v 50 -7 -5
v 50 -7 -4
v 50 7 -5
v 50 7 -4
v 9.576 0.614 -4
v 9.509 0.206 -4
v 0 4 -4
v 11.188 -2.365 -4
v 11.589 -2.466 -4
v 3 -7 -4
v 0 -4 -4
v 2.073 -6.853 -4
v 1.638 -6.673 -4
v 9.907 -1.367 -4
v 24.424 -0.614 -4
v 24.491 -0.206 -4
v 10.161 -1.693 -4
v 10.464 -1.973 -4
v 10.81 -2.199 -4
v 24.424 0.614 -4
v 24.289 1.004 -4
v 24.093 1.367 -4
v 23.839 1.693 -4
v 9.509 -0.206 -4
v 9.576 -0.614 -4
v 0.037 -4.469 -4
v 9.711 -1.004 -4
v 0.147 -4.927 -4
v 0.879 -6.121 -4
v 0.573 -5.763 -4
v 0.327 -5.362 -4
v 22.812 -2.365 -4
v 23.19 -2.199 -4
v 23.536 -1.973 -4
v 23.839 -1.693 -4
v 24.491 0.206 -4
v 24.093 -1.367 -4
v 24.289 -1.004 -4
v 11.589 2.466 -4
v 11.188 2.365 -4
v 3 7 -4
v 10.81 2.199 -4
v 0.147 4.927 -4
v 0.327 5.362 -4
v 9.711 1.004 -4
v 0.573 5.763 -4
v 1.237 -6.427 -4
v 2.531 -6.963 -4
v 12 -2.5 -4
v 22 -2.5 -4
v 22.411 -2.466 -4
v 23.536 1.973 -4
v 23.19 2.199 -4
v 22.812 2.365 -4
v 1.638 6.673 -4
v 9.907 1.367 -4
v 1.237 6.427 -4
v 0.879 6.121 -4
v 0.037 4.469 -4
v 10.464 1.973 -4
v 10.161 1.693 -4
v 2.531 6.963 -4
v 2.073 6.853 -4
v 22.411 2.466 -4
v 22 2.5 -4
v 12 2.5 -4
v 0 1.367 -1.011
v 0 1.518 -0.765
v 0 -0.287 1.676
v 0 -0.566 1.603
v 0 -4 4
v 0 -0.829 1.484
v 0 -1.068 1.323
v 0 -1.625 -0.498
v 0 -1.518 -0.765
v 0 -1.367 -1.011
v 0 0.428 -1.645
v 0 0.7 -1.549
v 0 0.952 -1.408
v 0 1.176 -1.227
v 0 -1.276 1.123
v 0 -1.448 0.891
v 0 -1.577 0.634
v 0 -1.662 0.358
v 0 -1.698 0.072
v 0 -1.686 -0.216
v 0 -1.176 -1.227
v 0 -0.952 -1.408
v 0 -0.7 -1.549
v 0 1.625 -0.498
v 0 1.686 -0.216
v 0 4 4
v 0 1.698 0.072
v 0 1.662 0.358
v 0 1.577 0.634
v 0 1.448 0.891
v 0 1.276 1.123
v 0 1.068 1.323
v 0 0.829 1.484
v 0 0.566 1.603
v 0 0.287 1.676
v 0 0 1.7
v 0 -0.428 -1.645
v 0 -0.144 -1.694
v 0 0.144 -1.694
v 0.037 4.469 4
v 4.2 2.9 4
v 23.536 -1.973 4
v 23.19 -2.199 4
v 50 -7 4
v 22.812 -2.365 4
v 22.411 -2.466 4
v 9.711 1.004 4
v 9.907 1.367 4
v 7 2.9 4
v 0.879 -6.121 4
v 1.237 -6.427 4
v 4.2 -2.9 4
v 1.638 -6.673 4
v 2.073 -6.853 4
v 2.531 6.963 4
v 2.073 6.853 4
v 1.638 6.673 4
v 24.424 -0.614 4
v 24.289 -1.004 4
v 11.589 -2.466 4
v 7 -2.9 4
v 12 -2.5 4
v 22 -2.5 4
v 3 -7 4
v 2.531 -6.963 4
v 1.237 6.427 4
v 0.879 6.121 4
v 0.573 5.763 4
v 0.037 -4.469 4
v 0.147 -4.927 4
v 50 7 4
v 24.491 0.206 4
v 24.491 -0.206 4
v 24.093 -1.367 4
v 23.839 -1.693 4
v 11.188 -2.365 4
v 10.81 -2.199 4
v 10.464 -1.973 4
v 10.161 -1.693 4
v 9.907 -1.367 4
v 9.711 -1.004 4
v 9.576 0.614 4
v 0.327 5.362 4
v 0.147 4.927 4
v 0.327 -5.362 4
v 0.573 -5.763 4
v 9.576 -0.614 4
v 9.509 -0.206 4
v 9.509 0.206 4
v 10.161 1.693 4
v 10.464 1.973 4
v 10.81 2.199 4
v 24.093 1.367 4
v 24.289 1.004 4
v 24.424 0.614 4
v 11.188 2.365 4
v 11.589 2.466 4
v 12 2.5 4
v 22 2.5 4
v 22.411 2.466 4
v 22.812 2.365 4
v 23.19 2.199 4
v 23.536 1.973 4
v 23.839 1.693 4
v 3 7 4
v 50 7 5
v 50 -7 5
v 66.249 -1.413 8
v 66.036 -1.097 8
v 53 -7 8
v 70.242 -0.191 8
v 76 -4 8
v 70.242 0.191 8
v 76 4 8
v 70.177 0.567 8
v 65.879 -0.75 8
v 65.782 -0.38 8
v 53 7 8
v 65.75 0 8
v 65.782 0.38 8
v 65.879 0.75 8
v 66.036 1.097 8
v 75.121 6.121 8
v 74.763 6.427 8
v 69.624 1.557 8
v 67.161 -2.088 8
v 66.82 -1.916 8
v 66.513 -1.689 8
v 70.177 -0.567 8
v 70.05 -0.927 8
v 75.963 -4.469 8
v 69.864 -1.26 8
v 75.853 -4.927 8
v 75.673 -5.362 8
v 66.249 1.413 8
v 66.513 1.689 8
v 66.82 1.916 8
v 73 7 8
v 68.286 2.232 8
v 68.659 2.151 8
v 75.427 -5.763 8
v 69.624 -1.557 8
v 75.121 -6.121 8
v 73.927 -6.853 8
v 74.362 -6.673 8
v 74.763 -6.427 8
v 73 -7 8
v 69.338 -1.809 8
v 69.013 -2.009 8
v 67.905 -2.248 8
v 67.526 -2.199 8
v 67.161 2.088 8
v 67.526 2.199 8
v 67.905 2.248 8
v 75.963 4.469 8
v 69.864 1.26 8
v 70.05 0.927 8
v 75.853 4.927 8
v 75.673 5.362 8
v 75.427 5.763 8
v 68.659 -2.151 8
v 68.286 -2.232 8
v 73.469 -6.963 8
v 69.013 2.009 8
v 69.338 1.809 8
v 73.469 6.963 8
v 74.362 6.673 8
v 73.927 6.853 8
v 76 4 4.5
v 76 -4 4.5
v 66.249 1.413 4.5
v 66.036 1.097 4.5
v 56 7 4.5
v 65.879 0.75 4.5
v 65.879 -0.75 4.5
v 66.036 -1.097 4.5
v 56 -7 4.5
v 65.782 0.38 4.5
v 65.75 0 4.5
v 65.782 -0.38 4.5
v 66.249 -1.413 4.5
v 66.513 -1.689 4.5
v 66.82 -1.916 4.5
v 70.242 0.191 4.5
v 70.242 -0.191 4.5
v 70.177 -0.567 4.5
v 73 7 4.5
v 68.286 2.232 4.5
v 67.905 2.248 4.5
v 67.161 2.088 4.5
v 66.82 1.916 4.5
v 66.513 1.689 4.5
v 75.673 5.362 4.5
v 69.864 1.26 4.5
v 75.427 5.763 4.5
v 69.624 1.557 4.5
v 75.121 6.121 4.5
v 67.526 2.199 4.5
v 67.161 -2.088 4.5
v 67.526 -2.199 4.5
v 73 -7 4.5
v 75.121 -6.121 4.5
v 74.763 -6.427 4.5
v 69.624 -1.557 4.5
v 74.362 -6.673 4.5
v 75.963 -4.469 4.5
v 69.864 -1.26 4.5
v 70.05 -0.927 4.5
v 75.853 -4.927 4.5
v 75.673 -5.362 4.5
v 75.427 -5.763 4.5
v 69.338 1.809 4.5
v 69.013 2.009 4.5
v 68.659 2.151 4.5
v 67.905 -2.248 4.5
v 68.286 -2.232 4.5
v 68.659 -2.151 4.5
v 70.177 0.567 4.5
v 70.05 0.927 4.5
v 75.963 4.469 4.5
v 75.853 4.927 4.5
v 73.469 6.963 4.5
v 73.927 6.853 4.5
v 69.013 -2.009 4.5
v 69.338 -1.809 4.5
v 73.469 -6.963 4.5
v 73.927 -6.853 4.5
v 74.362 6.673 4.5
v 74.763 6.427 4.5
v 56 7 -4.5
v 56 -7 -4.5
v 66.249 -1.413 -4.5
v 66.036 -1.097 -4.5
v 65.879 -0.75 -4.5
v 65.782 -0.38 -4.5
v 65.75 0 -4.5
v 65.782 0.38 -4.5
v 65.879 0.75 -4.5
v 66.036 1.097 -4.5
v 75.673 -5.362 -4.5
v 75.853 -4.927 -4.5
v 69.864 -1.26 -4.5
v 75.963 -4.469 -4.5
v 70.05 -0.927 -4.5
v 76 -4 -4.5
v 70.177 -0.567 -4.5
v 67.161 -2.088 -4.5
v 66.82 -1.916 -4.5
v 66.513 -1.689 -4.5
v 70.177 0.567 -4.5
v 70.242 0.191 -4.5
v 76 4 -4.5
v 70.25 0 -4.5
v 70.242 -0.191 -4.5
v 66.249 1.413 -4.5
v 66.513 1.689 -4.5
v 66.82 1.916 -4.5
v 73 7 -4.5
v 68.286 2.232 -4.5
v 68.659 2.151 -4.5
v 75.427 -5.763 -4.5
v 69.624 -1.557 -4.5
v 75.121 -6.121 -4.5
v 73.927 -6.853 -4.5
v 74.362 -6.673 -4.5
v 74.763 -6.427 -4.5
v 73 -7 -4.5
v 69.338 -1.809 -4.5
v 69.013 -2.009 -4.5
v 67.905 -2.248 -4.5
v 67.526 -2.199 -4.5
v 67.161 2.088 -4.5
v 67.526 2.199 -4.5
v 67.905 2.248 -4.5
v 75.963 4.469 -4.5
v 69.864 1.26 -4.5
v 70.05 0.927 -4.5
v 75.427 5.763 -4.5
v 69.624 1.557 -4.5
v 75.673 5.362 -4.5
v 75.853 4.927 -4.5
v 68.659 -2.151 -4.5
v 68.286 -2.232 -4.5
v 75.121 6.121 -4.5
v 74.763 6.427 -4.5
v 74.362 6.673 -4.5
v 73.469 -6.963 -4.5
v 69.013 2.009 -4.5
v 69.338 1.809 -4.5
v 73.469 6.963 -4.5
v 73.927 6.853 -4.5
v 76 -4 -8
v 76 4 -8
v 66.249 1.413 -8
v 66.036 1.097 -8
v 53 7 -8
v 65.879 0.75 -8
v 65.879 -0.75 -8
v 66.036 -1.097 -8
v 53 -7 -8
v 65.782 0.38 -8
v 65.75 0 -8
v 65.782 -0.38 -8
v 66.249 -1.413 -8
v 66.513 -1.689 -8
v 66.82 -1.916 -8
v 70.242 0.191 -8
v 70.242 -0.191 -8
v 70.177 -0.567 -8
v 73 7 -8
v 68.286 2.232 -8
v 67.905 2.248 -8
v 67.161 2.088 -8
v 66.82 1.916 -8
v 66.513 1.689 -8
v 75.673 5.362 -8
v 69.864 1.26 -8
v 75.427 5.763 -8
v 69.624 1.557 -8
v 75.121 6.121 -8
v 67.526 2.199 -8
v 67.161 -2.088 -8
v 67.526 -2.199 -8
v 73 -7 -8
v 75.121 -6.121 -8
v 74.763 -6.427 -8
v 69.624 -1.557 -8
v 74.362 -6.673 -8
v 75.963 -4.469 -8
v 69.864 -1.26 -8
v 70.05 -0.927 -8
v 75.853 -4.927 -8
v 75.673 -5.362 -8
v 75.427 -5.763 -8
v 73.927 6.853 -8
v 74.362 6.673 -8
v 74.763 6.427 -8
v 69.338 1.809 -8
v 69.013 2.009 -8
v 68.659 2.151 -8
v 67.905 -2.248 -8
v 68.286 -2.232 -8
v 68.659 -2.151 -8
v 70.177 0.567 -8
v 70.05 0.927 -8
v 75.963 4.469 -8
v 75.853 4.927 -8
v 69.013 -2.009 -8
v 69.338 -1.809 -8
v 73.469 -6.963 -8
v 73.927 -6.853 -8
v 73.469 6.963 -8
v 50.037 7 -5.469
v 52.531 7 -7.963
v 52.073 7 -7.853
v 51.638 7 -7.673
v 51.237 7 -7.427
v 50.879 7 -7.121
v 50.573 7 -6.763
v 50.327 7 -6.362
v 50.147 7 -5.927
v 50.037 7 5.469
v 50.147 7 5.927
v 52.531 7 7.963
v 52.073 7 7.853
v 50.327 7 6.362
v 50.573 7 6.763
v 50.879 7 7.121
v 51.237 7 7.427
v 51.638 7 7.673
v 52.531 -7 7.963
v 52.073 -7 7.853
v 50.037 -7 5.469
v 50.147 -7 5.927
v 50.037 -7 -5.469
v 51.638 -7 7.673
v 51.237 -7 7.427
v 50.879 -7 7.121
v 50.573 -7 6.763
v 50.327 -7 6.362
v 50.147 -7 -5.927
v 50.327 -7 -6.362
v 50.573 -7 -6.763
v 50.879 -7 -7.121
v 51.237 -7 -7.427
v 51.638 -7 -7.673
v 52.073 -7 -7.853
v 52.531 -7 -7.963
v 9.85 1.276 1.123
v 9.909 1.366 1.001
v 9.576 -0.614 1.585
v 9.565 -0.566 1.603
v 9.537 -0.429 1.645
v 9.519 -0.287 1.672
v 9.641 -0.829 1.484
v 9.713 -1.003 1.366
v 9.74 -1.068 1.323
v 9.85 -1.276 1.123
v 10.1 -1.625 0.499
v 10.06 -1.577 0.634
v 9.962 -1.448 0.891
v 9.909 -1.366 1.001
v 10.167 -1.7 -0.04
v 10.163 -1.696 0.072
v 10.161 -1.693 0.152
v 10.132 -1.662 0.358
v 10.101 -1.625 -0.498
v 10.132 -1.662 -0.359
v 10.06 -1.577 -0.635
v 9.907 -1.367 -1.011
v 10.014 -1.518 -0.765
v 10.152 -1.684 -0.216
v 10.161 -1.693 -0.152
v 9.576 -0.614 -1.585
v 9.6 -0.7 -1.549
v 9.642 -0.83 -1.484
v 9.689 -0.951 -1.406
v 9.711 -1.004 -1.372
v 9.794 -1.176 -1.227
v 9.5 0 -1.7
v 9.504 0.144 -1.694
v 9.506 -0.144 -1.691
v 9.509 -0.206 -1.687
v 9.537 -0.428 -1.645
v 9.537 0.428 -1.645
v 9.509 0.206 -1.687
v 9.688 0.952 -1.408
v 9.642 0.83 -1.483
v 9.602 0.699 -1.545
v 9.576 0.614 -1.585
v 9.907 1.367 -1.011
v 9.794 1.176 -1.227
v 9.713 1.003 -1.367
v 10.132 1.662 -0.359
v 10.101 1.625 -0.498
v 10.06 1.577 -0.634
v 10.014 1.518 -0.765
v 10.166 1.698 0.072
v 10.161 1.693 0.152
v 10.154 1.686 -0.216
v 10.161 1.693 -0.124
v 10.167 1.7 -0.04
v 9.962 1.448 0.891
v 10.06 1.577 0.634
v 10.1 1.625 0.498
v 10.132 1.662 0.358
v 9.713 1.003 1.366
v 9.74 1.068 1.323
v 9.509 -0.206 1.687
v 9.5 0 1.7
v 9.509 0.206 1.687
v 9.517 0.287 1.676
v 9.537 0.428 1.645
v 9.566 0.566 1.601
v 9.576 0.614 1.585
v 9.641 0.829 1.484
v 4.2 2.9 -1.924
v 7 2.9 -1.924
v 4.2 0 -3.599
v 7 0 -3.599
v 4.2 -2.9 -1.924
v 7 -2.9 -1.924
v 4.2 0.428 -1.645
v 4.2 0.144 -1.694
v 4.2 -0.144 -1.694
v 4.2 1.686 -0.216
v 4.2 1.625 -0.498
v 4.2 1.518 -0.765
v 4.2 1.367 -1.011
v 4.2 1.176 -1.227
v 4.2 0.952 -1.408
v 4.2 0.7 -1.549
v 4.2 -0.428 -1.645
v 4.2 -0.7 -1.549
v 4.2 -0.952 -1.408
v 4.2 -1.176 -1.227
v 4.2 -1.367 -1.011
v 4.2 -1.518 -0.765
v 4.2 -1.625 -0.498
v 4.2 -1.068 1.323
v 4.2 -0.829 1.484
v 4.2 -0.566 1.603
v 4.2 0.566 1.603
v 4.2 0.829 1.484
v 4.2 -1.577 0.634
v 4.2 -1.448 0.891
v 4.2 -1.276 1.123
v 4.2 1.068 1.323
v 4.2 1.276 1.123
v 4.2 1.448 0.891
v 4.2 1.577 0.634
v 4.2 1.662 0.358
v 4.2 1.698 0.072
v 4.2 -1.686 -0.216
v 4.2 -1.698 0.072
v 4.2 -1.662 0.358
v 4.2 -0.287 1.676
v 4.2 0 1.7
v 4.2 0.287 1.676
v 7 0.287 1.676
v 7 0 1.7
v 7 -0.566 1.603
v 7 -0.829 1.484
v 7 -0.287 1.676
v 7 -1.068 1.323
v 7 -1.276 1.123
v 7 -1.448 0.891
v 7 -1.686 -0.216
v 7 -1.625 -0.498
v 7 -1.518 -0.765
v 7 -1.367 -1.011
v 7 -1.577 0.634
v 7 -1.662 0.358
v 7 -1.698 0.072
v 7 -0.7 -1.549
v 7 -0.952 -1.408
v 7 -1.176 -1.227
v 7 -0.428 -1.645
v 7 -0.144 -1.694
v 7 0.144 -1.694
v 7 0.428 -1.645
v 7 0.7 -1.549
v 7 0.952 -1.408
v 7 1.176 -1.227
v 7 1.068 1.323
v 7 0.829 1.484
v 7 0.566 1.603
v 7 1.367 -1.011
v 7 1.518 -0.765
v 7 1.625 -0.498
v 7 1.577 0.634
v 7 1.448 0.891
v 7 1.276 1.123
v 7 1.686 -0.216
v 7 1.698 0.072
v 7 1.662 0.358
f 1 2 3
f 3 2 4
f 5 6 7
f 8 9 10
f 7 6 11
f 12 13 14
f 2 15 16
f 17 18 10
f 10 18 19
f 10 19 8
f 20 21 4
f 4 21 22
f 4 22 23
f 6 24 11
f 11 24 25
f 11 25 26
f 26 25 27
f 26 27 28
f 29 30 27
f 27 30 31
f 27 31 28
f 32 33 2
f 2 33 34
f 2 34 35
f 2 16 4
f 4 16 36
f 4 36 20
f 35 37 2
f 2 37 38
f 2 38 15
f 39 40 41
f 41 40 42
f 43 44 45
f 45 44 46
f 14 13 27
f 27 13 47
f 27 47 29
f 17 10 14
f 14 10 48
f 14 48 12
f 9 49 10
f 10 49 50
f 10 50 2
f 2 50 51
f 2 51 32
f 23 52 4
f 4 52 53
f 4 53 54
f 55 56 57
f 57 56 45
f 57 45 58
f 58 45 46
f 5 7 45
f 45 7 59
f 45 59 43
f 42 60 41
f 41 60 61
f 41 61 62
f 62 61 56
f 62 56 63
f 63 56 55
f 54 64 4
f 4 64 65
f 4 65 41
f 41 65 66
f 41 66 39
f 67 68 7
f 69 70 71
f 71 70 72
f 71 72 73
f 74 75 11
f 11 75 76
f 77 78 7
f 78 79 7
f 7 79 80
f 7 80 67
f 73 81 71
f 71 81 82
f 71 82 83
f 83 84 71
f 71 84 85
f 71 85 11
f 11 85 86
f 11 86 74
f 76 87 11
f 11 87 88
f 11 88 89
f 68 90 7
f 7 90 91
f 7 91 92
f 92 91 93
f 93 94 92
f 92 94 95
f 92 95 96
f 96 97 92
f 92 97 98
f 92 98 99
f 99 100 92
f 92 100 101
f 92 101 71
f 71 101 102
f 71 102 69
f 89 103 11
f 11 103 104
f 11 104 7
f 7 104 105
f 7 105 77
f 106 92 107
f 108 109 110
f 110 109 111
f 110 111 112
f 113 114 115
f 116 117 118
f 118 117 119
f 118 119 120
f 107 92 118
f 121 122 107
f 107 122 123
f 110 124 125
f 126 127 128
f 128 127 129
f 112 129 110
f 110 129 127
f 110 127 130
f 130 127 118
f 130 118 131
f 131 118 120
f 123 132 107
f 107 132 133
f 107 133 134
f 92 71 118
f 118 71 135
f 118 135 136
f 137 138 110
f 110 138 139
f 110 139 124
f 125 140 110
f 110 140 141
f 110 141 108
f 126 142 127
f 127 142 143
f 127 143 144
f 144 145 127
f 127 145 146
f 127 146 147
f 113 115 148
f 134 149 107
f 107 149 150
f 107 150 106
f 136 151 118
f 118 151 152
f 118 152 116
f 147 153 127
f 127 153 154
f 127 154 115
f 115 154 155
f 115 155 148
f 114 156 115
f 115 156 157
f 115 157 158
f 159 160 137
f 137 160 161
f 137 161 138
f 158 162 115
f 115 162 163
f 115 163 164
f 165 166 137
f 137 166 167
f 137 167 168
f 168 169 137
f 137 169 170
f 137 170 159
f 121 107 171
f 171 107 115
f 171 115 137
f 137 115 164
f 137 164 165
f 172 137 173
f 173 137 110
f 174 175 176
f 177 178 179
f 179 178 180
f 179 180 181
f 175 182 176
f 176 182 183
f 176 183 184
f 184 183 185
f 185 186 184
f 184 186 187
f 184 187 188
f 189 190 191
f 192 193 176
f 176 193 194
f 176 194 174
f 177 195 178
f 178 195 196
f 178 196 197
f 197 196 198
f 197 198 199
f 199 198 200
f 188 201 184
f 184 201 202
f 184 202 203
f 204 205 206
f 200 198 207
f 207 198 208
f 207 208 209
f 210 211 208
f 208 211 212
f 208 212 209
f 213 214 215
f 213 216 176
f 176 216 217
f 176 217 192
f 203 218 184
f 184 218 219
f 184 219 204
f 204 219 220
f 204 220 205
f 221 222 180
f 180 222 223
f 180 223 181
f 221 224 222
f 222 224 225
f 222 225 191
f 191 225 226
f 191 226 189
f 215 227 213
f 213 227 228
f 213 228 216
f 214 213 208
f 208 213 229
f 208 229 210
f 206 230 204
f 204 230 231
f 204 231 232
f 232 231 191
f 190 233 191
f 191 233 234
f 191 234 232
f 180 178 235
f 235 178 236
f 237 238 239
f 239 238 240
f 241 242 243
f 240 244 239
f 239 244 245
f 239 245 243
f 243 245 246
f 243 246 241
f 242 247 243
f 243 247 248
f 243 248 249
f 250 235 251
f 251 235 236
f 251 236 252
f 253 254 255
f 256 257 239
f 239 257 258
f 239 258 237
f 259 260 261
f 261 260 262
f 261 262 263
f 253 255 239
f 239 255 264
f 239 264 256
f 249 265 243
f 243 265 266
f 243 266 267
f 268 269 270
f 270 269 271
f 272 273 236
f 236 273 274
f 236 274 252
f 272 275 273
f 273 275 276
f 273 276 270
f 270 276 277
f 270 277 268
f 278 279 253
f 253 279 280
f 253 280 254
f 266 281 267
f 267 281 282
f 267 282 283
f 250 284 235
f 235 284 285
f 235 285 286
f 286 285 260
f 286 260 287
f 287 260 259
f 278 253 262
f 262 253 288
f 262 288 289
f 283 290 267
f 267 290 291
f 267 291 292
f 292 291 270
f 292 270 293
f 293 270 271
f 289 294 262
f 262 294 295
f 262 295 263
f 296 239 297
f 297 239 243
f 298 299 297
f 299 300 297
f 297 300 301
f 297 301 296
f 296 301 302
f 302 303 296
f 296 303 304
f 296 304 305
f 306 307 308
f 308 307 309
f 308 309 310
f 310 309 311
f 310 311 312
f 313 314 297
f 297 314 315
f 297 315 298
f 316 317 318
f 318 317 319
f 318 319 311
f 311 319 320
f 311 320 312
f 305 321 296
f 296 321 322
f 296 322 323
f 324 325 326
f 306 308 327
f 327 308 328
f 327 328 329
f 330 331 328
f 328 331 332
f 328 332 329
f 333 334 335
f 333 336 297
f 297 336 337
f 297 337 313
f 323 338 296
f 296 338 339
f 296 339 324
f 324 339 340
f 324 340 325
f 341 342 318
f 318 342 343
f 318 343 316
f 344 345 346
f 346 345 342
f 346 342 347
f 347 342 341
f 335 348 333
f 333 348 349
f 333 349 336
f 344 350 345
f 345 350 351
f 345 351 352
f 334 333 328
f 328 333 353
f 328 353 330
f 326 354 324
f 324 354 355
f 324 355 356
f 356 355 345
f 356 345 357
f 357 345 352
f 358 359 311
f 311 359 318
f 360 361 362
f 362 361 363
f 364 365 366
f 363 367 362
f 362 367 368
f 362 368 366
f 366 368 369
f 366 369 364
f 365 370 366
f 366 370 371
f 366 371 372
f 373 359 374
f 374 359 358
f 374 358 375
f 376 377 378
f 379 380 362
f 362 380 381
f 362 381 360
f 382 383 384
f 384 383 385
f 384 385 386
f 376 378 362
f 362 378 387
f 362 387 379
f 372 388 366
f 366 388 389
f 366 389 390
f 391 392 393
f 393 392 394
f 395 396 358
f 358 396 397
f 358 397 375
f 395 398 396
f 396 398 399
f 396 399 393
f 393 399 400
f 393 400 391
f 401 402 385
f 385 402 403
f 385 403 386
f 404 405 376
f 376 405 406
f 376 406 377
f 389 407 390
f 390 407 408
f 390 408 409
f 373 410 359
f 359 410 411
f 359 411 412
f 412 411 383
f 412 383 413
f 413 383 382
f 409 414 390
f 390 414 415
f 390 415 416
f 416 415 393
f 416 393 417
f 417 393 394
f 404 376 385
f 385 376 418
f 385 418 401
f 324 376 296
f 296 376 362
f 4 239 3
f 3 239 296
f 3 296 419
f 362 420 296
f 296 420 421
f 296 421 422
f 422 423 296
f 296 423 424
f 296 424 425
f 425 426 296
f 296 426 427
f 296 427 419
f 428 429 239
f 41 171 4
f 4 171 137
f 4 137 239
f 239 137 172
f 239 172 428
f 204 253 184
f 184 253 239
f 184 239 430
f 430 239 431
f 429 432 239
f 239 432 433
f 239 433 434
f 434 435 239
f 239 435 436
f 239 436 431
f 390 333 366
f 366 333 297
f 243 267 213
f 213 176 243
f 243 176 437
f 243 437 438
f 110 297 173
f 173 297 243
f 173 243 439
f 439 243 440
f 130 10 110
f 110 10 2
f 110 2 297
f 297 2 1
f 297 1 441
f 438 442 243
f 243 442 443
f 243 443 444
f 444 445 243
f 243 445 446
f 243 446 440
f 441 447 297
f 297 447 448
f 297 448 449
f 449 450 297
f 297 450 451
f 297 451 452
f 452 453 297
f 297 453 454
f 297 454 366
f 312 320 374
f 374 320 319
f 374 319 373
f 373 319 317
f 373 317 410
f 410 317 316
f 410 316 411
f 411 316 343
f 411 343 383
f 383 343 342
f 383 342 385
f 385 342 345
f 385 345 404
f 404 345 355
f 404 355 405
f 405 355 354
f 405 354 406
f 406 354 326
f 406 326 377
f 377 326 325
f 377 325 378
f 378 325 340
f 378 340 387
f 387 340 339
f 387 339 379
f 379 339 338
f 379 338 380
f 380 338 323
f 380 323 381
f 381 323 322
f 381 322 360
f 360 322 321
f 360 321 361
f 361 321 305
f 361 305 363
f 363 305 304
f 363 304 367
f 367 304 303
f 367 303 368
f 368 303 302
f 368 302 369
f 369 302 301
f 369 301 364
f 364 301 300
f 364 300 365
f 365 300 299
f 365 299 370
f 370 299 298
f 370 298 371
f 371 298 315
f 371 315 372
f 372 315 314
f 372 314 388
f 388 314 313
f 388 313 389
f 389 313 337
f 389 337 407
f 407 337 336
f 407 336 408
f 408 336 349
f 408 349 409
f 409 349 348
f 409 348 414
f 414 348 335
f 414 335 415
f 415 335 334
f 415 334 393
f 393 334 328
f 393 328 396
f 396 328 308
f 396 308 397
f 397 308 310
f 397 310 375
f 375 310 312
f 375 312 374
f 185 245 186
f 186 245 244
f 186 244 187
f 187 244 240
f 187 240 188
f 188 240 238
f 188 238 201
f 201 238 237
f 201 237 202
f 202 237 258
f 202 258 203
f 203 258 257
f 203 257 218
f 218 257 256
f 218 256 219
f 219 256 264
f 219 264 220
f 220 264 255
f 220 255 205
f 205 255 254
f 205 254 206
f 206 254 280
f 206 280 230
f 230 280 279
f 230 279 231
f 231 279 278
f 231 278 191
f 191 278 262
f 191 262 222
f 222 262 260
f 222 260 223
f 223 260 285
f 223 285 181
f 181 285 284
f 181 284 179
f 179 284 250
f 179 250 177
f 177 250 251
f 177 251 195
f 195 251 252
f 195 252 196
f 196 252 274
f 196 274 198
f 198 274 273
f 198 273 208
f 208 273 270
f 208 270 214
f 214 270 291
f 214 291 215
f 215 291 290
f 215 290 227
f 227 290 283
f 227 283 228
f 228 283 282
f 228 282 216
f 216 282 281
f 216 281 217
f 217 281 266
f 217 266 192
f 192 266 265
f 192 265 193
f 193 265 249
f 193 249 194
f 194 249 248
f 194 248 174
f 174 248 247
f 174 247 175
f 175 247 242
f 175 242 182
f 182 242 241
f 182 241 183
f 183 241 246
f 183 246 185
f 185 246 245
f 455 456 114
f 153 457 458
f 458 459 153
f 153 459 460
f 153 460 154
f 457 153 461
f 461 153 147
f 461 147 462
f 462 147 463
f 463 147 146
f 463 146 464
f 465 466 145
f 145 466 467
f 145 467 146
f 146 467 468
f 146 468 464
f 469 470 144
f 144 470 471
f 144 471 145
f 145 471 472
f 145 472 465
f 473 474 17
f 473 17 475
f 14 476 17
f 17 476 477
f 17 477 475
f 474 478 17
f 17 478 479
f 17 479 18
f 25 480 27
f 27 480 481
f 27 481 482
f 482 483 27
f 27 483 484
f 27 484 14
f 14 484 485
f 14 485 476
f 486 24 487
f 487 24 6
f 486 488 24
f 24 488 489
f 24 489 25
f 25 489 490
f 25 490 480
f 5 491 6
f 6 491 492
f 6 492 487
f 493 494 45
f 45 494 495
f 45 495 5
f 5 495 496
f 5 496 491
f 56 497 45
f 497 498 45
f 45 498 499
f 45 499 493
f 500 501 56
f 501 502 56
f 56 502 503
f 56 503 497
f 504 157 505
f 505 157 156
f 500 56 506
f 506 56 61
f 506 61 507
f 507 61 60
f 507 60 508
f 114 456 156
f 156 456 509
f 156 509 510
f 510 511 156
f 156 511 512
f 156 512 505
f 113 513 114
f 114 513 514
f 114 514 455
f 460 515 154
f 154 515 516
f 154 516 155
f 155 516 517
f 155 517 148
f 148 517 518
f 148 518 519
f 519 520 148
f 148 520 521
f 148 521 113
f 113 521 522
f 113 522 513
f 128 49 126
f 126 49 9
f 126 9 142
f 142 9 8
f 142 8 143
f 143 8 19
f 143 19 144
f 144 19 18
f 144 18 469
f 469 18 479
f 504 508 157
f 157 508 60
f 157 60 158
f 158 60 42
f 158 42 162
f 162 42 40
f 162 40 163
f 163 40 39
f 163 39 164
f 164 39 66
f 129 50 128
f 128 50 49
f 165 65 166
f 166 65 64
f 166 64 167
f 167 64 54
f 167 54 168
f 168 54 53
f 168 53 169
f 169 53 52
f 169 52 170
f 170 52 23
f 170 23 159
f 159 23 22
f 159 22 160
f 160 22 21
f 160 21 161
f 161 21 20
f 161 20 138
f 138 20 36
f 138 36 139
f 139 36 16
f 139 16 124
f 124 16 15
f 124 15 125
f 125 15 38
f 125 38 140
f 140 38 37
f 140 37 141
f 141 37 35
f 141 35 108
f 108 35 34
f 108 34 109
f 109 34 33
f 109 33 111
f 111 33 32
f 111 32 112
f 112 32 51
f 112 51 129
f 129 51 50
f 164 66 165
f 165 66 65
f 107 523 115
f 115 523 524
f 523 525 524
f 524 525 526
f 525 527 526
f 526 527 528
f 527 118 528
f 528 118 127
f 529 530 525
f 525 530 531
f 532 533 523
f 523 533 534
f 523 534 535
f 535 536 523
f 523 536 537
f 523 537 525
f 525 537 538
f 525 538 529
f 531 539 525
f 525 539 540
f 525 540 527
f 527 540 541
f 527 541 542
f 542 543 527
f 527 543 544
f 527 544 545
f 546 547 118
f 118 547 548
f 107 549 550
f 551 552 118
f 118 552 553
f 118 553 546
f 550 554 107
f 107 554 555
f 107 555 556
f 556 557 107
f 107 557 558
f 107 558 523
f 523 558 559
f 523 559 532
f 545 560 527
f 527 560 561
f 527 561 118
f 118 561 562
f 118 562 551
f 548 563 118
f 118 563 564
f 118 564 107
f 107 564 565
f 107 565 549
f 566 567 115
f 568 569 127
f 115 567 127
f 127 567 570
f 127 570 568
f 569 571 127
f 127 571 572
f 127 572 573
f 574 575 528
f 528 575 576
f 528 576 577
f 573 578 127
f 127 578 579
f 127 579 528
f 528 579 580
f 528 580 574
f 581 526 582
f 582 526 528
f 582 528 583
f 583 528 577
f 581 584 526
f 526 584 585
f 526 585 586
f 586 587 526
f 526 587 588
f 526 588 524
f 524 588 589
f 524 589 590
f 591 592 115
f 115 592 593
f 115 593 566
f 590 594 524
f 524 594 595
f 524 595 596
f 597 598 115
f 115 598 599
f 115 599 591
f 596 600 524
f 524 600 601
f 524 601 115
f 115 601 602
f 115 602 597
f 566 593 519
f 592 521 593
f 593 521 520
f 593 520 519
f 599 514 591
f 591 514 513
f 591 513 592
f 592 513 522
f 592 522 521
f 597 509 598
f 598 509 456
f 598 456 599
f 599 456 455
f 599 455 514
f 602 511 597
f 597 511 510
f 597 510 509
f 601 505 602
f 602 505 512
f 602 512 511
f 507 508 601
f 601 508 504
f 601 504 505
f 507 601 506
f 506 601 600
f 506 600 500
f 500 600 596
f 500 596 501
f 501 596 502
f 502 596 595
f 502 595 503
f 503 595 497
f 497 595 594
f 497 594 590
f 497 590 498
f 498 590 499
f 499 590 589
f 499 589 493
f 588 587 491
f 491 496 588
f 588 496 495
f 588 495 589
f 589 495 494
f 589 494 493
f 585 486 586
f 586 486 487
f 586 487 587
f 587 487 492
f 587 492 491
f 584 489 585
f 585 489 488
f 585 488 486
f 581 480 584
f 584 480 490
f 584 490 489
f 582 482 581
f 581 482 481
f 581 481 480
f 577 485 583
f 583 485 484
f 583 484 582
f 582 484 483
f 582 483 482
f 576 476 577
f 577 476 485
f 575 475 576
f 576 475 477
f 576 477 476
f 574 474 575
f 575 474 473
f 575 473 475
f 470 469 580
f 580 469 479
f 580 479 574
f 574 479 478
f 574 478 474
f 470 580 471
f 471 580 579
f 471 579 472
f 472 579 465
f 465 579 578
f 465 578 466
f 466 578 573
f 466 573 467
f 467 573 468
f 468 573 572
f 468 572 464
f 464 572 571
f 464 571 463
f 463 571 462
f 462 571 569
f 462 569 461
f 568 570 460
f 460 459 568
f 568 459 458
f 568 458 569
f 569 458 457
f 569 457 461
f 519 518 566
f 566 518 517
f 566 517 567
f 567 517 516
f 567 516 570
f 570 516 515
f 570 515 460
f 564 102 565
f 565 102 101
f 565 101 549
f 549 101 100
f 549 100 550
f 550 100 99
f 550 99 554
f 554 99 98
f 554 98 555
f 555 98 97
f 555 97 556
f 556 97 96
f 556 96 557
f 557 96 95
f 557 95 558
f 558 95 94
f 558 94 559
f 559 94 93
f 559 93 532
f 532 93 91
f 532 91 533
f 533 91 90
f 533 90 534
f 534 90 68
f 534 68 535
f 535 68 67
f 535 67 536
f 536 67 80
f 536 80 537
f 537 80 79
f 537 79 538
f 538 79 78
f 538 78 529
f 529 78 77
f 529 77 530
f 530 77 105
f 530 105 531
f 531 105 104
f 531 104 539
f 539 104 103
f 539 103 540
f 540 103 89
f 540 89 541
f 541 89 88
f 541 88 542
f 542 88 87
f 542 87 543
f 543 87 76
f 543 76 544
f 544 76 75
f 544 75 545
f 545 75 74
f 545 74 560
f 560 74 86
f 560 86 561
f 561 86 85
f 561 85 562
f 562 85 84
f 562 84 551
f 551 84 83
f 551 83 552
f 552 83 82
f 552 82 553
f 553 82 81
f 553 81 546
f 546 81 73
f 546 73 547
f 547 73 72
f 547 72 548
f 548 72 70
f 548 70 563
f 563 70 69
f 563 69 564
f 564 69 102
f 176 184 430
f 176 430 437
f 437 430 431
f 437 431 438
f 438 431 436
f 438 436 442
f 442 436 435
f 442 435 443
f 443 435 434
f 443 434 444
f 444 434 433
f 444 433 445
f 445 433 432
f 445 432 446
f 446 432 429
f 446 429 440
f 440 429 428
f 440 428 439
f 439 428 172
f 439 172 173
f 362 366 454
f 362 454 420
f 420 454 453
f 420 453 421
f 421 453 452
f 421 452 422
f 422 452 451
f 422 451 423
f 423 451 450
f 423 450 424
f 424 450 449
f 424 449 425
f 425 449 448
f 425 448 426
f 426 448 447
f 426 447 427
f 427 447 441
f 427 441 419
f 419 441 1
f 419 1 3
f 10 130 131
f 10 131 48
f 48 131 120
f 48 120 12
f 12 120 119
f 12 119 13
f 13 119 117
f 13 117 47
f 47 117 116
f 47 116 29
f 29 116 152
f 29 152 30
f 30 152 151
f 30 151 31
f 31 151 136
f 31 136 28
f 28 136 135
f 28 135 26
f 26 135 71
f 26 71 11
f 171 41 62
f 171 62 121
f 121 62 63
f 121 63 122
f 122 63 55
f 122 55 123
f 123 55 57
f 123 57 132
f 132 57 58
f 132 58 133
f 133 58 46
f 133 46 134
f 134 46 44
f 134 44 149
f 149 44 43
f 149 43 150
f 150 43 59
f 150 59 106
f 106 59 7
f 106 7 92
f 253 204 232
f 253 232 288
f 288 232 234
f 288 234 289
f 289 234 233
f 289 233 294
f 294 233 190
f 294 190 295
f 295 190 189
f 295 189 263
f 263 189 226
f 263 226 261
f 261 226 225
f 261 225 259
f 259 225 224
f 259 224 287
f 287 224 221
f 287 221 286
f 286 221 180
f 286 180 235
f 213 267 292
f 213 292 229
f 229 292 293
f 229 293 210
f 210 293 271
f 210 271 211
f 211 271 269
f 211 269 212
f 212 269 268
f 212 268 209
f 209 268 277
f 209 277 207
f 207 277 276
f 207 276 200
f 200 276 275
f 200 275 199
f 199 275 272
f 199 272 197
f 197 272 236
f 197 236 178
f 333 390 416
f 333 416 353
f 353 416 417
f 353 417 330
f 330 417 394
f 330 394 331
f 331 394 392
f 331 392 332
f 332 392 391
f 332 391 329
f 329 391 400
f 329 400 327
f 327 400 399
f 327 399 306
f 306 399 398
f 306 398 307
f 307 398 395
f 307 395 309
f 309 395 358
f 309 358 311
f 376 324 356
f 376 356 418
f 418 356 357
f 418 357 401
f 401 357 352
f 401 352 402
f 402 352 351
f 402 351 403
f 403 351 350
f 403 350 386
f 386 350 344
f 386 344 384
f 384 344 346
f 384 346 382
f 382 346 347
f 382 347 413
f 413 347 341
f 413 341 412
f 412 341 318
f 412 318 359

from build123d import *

# Parameters (mm, degrees)
SKETCH1_W                = 50
SKETCH1_H                = 4
BOSS_EXTRUDE1_DEPTH      = 7
M4_CLEARANCE_HOLE1_D     = 4.5
CUT_EXTRUDE1_DEPTH       = 78.259303647
CUT_EXTRUDE1_DEPTH_BACK  = 78.259303647
CUT_EXTRUDE2_DEPTH       = 2.8
M3_CLEARANCE_HOLE1_D     = 3.4
M3_CLEARANCE_HOLE1_DEPTH = 16
M3_CLEARANCE_HOLE1_TIP   = 1.021463052
FILLET1_R                = 3


with BuildPart() as part:
    # Sketch1 → Boss-Extrude1 (new, symmetric)
    with BuildSketch(Plane(origin=(0, 0, 0), x_dir=(1, 0, 0), z_dir=(0, 1, 0))):
        Polygon((50, 4), (50, 0), (56, 0), (56, 4.5), (76, 4.5), (76, 8), (50, 8), align=None)
        Polygon((50, 0), (50, -4), (50, -8), (76, -8), (76, -4.5), (56, -4.5), (56, 0), align=None)
        with Locations((25, 2)):
            Rectangle(SKETCH1_W, SKETCH1_H)
        with Locations((25, -2)):
            Rectangle(SKETCH1_W, SKETCH1_H)
    extrude(amount=BOSS_EXTRUDE1_DEPTH, both=True)

    # M4 Clearance Hole1 (through all)
    with Locations(Plane(origin=(0, 0, -8), x_dir=(-1, 0, 0), z_dir=(0, 0, -1))):
        with Locations((-68, 0)):
            Hole(M4_CLEARANCE_HOLE1_D / 2)

    # Sketch6 → Cut-Extrude1 (cut, two sides: drawn at the far end of the back side and taken through both)
    with BuildSketch(Plane(origin=(0, 0, -4), x_dir=(-1, 0, 0), z_dir=(0, 0, -1)).offset(-CUT_EXTRUDE1_DEPTH_BACK)):
        with BuildLine():
            Line((-12, -2.5), (-22, -2.5))
            ThreePointArc((-22, -2.5), (-24.5, 0), (-22, 2.5))
            Line((-22, 2.5), (-12, 2.5))
            ThreePointArc((-12, 2.5), (-9.5, 0), (-12, -2.5))
        make_face()
    extrude(amount=CUT_EXTRUDE1_DEPTH + CUT_EXTRUDE1_DEPTH_BACK, mode=Mode.SUBTRACT)

    # Sketch7 → Cut-Extrude2 (cut)
    with BuildSketch(Plane.ZY.offset(-7)):
        Polygon((4, 2.9), (-1.924315781, 2.9), (-3.598631561, 0), (-1.924315781, -2.9), (4, -2.9), align=None)
    extrude(amount=CUT_EXTRUDE2_DEPTH, mode=Mode.SUBTRACT)

    # M3 Clearance Hole1
    with Locations(Plane(origin=(0, 0, 0), x_dir=(0, 0, -1), z_dir=(-1, 0, 0))):
        with Locations((0, 0)):
            Hole(M3_CLEARANCE_HOLE1_D / 2, depth=M3_CLEARANCE_HOLE1_DEPTH)
            with Locations((0, 0, -(M3_CLEARANCE_HOLE1_DEPTH + M3_CLEARANCE_HOLE1_TIP / 2))):  # 118° drill point
                Cone(0, M3_CLEARANCE_HOLE1_D / 2, M3_CLEARANCE_HOLE1_TIP, mode=Mode.SUBTRACT)

    # Fillet1
    fillet1_edges = [part.edges().sort_by_distance(p)[0] for p in [
        (0, 7, 0),
        (76, -7, -6.25),
        (76, -7, 6.25),
        (0, -7, 0),
        (50, 0, -8),
        (50, 0, 8),
        (76, 7, 6.25),
        (76, 7, -6.25),
    ]]
    fillet(fillet1_edges, radius=FILLET1_R)


solid = part.part
